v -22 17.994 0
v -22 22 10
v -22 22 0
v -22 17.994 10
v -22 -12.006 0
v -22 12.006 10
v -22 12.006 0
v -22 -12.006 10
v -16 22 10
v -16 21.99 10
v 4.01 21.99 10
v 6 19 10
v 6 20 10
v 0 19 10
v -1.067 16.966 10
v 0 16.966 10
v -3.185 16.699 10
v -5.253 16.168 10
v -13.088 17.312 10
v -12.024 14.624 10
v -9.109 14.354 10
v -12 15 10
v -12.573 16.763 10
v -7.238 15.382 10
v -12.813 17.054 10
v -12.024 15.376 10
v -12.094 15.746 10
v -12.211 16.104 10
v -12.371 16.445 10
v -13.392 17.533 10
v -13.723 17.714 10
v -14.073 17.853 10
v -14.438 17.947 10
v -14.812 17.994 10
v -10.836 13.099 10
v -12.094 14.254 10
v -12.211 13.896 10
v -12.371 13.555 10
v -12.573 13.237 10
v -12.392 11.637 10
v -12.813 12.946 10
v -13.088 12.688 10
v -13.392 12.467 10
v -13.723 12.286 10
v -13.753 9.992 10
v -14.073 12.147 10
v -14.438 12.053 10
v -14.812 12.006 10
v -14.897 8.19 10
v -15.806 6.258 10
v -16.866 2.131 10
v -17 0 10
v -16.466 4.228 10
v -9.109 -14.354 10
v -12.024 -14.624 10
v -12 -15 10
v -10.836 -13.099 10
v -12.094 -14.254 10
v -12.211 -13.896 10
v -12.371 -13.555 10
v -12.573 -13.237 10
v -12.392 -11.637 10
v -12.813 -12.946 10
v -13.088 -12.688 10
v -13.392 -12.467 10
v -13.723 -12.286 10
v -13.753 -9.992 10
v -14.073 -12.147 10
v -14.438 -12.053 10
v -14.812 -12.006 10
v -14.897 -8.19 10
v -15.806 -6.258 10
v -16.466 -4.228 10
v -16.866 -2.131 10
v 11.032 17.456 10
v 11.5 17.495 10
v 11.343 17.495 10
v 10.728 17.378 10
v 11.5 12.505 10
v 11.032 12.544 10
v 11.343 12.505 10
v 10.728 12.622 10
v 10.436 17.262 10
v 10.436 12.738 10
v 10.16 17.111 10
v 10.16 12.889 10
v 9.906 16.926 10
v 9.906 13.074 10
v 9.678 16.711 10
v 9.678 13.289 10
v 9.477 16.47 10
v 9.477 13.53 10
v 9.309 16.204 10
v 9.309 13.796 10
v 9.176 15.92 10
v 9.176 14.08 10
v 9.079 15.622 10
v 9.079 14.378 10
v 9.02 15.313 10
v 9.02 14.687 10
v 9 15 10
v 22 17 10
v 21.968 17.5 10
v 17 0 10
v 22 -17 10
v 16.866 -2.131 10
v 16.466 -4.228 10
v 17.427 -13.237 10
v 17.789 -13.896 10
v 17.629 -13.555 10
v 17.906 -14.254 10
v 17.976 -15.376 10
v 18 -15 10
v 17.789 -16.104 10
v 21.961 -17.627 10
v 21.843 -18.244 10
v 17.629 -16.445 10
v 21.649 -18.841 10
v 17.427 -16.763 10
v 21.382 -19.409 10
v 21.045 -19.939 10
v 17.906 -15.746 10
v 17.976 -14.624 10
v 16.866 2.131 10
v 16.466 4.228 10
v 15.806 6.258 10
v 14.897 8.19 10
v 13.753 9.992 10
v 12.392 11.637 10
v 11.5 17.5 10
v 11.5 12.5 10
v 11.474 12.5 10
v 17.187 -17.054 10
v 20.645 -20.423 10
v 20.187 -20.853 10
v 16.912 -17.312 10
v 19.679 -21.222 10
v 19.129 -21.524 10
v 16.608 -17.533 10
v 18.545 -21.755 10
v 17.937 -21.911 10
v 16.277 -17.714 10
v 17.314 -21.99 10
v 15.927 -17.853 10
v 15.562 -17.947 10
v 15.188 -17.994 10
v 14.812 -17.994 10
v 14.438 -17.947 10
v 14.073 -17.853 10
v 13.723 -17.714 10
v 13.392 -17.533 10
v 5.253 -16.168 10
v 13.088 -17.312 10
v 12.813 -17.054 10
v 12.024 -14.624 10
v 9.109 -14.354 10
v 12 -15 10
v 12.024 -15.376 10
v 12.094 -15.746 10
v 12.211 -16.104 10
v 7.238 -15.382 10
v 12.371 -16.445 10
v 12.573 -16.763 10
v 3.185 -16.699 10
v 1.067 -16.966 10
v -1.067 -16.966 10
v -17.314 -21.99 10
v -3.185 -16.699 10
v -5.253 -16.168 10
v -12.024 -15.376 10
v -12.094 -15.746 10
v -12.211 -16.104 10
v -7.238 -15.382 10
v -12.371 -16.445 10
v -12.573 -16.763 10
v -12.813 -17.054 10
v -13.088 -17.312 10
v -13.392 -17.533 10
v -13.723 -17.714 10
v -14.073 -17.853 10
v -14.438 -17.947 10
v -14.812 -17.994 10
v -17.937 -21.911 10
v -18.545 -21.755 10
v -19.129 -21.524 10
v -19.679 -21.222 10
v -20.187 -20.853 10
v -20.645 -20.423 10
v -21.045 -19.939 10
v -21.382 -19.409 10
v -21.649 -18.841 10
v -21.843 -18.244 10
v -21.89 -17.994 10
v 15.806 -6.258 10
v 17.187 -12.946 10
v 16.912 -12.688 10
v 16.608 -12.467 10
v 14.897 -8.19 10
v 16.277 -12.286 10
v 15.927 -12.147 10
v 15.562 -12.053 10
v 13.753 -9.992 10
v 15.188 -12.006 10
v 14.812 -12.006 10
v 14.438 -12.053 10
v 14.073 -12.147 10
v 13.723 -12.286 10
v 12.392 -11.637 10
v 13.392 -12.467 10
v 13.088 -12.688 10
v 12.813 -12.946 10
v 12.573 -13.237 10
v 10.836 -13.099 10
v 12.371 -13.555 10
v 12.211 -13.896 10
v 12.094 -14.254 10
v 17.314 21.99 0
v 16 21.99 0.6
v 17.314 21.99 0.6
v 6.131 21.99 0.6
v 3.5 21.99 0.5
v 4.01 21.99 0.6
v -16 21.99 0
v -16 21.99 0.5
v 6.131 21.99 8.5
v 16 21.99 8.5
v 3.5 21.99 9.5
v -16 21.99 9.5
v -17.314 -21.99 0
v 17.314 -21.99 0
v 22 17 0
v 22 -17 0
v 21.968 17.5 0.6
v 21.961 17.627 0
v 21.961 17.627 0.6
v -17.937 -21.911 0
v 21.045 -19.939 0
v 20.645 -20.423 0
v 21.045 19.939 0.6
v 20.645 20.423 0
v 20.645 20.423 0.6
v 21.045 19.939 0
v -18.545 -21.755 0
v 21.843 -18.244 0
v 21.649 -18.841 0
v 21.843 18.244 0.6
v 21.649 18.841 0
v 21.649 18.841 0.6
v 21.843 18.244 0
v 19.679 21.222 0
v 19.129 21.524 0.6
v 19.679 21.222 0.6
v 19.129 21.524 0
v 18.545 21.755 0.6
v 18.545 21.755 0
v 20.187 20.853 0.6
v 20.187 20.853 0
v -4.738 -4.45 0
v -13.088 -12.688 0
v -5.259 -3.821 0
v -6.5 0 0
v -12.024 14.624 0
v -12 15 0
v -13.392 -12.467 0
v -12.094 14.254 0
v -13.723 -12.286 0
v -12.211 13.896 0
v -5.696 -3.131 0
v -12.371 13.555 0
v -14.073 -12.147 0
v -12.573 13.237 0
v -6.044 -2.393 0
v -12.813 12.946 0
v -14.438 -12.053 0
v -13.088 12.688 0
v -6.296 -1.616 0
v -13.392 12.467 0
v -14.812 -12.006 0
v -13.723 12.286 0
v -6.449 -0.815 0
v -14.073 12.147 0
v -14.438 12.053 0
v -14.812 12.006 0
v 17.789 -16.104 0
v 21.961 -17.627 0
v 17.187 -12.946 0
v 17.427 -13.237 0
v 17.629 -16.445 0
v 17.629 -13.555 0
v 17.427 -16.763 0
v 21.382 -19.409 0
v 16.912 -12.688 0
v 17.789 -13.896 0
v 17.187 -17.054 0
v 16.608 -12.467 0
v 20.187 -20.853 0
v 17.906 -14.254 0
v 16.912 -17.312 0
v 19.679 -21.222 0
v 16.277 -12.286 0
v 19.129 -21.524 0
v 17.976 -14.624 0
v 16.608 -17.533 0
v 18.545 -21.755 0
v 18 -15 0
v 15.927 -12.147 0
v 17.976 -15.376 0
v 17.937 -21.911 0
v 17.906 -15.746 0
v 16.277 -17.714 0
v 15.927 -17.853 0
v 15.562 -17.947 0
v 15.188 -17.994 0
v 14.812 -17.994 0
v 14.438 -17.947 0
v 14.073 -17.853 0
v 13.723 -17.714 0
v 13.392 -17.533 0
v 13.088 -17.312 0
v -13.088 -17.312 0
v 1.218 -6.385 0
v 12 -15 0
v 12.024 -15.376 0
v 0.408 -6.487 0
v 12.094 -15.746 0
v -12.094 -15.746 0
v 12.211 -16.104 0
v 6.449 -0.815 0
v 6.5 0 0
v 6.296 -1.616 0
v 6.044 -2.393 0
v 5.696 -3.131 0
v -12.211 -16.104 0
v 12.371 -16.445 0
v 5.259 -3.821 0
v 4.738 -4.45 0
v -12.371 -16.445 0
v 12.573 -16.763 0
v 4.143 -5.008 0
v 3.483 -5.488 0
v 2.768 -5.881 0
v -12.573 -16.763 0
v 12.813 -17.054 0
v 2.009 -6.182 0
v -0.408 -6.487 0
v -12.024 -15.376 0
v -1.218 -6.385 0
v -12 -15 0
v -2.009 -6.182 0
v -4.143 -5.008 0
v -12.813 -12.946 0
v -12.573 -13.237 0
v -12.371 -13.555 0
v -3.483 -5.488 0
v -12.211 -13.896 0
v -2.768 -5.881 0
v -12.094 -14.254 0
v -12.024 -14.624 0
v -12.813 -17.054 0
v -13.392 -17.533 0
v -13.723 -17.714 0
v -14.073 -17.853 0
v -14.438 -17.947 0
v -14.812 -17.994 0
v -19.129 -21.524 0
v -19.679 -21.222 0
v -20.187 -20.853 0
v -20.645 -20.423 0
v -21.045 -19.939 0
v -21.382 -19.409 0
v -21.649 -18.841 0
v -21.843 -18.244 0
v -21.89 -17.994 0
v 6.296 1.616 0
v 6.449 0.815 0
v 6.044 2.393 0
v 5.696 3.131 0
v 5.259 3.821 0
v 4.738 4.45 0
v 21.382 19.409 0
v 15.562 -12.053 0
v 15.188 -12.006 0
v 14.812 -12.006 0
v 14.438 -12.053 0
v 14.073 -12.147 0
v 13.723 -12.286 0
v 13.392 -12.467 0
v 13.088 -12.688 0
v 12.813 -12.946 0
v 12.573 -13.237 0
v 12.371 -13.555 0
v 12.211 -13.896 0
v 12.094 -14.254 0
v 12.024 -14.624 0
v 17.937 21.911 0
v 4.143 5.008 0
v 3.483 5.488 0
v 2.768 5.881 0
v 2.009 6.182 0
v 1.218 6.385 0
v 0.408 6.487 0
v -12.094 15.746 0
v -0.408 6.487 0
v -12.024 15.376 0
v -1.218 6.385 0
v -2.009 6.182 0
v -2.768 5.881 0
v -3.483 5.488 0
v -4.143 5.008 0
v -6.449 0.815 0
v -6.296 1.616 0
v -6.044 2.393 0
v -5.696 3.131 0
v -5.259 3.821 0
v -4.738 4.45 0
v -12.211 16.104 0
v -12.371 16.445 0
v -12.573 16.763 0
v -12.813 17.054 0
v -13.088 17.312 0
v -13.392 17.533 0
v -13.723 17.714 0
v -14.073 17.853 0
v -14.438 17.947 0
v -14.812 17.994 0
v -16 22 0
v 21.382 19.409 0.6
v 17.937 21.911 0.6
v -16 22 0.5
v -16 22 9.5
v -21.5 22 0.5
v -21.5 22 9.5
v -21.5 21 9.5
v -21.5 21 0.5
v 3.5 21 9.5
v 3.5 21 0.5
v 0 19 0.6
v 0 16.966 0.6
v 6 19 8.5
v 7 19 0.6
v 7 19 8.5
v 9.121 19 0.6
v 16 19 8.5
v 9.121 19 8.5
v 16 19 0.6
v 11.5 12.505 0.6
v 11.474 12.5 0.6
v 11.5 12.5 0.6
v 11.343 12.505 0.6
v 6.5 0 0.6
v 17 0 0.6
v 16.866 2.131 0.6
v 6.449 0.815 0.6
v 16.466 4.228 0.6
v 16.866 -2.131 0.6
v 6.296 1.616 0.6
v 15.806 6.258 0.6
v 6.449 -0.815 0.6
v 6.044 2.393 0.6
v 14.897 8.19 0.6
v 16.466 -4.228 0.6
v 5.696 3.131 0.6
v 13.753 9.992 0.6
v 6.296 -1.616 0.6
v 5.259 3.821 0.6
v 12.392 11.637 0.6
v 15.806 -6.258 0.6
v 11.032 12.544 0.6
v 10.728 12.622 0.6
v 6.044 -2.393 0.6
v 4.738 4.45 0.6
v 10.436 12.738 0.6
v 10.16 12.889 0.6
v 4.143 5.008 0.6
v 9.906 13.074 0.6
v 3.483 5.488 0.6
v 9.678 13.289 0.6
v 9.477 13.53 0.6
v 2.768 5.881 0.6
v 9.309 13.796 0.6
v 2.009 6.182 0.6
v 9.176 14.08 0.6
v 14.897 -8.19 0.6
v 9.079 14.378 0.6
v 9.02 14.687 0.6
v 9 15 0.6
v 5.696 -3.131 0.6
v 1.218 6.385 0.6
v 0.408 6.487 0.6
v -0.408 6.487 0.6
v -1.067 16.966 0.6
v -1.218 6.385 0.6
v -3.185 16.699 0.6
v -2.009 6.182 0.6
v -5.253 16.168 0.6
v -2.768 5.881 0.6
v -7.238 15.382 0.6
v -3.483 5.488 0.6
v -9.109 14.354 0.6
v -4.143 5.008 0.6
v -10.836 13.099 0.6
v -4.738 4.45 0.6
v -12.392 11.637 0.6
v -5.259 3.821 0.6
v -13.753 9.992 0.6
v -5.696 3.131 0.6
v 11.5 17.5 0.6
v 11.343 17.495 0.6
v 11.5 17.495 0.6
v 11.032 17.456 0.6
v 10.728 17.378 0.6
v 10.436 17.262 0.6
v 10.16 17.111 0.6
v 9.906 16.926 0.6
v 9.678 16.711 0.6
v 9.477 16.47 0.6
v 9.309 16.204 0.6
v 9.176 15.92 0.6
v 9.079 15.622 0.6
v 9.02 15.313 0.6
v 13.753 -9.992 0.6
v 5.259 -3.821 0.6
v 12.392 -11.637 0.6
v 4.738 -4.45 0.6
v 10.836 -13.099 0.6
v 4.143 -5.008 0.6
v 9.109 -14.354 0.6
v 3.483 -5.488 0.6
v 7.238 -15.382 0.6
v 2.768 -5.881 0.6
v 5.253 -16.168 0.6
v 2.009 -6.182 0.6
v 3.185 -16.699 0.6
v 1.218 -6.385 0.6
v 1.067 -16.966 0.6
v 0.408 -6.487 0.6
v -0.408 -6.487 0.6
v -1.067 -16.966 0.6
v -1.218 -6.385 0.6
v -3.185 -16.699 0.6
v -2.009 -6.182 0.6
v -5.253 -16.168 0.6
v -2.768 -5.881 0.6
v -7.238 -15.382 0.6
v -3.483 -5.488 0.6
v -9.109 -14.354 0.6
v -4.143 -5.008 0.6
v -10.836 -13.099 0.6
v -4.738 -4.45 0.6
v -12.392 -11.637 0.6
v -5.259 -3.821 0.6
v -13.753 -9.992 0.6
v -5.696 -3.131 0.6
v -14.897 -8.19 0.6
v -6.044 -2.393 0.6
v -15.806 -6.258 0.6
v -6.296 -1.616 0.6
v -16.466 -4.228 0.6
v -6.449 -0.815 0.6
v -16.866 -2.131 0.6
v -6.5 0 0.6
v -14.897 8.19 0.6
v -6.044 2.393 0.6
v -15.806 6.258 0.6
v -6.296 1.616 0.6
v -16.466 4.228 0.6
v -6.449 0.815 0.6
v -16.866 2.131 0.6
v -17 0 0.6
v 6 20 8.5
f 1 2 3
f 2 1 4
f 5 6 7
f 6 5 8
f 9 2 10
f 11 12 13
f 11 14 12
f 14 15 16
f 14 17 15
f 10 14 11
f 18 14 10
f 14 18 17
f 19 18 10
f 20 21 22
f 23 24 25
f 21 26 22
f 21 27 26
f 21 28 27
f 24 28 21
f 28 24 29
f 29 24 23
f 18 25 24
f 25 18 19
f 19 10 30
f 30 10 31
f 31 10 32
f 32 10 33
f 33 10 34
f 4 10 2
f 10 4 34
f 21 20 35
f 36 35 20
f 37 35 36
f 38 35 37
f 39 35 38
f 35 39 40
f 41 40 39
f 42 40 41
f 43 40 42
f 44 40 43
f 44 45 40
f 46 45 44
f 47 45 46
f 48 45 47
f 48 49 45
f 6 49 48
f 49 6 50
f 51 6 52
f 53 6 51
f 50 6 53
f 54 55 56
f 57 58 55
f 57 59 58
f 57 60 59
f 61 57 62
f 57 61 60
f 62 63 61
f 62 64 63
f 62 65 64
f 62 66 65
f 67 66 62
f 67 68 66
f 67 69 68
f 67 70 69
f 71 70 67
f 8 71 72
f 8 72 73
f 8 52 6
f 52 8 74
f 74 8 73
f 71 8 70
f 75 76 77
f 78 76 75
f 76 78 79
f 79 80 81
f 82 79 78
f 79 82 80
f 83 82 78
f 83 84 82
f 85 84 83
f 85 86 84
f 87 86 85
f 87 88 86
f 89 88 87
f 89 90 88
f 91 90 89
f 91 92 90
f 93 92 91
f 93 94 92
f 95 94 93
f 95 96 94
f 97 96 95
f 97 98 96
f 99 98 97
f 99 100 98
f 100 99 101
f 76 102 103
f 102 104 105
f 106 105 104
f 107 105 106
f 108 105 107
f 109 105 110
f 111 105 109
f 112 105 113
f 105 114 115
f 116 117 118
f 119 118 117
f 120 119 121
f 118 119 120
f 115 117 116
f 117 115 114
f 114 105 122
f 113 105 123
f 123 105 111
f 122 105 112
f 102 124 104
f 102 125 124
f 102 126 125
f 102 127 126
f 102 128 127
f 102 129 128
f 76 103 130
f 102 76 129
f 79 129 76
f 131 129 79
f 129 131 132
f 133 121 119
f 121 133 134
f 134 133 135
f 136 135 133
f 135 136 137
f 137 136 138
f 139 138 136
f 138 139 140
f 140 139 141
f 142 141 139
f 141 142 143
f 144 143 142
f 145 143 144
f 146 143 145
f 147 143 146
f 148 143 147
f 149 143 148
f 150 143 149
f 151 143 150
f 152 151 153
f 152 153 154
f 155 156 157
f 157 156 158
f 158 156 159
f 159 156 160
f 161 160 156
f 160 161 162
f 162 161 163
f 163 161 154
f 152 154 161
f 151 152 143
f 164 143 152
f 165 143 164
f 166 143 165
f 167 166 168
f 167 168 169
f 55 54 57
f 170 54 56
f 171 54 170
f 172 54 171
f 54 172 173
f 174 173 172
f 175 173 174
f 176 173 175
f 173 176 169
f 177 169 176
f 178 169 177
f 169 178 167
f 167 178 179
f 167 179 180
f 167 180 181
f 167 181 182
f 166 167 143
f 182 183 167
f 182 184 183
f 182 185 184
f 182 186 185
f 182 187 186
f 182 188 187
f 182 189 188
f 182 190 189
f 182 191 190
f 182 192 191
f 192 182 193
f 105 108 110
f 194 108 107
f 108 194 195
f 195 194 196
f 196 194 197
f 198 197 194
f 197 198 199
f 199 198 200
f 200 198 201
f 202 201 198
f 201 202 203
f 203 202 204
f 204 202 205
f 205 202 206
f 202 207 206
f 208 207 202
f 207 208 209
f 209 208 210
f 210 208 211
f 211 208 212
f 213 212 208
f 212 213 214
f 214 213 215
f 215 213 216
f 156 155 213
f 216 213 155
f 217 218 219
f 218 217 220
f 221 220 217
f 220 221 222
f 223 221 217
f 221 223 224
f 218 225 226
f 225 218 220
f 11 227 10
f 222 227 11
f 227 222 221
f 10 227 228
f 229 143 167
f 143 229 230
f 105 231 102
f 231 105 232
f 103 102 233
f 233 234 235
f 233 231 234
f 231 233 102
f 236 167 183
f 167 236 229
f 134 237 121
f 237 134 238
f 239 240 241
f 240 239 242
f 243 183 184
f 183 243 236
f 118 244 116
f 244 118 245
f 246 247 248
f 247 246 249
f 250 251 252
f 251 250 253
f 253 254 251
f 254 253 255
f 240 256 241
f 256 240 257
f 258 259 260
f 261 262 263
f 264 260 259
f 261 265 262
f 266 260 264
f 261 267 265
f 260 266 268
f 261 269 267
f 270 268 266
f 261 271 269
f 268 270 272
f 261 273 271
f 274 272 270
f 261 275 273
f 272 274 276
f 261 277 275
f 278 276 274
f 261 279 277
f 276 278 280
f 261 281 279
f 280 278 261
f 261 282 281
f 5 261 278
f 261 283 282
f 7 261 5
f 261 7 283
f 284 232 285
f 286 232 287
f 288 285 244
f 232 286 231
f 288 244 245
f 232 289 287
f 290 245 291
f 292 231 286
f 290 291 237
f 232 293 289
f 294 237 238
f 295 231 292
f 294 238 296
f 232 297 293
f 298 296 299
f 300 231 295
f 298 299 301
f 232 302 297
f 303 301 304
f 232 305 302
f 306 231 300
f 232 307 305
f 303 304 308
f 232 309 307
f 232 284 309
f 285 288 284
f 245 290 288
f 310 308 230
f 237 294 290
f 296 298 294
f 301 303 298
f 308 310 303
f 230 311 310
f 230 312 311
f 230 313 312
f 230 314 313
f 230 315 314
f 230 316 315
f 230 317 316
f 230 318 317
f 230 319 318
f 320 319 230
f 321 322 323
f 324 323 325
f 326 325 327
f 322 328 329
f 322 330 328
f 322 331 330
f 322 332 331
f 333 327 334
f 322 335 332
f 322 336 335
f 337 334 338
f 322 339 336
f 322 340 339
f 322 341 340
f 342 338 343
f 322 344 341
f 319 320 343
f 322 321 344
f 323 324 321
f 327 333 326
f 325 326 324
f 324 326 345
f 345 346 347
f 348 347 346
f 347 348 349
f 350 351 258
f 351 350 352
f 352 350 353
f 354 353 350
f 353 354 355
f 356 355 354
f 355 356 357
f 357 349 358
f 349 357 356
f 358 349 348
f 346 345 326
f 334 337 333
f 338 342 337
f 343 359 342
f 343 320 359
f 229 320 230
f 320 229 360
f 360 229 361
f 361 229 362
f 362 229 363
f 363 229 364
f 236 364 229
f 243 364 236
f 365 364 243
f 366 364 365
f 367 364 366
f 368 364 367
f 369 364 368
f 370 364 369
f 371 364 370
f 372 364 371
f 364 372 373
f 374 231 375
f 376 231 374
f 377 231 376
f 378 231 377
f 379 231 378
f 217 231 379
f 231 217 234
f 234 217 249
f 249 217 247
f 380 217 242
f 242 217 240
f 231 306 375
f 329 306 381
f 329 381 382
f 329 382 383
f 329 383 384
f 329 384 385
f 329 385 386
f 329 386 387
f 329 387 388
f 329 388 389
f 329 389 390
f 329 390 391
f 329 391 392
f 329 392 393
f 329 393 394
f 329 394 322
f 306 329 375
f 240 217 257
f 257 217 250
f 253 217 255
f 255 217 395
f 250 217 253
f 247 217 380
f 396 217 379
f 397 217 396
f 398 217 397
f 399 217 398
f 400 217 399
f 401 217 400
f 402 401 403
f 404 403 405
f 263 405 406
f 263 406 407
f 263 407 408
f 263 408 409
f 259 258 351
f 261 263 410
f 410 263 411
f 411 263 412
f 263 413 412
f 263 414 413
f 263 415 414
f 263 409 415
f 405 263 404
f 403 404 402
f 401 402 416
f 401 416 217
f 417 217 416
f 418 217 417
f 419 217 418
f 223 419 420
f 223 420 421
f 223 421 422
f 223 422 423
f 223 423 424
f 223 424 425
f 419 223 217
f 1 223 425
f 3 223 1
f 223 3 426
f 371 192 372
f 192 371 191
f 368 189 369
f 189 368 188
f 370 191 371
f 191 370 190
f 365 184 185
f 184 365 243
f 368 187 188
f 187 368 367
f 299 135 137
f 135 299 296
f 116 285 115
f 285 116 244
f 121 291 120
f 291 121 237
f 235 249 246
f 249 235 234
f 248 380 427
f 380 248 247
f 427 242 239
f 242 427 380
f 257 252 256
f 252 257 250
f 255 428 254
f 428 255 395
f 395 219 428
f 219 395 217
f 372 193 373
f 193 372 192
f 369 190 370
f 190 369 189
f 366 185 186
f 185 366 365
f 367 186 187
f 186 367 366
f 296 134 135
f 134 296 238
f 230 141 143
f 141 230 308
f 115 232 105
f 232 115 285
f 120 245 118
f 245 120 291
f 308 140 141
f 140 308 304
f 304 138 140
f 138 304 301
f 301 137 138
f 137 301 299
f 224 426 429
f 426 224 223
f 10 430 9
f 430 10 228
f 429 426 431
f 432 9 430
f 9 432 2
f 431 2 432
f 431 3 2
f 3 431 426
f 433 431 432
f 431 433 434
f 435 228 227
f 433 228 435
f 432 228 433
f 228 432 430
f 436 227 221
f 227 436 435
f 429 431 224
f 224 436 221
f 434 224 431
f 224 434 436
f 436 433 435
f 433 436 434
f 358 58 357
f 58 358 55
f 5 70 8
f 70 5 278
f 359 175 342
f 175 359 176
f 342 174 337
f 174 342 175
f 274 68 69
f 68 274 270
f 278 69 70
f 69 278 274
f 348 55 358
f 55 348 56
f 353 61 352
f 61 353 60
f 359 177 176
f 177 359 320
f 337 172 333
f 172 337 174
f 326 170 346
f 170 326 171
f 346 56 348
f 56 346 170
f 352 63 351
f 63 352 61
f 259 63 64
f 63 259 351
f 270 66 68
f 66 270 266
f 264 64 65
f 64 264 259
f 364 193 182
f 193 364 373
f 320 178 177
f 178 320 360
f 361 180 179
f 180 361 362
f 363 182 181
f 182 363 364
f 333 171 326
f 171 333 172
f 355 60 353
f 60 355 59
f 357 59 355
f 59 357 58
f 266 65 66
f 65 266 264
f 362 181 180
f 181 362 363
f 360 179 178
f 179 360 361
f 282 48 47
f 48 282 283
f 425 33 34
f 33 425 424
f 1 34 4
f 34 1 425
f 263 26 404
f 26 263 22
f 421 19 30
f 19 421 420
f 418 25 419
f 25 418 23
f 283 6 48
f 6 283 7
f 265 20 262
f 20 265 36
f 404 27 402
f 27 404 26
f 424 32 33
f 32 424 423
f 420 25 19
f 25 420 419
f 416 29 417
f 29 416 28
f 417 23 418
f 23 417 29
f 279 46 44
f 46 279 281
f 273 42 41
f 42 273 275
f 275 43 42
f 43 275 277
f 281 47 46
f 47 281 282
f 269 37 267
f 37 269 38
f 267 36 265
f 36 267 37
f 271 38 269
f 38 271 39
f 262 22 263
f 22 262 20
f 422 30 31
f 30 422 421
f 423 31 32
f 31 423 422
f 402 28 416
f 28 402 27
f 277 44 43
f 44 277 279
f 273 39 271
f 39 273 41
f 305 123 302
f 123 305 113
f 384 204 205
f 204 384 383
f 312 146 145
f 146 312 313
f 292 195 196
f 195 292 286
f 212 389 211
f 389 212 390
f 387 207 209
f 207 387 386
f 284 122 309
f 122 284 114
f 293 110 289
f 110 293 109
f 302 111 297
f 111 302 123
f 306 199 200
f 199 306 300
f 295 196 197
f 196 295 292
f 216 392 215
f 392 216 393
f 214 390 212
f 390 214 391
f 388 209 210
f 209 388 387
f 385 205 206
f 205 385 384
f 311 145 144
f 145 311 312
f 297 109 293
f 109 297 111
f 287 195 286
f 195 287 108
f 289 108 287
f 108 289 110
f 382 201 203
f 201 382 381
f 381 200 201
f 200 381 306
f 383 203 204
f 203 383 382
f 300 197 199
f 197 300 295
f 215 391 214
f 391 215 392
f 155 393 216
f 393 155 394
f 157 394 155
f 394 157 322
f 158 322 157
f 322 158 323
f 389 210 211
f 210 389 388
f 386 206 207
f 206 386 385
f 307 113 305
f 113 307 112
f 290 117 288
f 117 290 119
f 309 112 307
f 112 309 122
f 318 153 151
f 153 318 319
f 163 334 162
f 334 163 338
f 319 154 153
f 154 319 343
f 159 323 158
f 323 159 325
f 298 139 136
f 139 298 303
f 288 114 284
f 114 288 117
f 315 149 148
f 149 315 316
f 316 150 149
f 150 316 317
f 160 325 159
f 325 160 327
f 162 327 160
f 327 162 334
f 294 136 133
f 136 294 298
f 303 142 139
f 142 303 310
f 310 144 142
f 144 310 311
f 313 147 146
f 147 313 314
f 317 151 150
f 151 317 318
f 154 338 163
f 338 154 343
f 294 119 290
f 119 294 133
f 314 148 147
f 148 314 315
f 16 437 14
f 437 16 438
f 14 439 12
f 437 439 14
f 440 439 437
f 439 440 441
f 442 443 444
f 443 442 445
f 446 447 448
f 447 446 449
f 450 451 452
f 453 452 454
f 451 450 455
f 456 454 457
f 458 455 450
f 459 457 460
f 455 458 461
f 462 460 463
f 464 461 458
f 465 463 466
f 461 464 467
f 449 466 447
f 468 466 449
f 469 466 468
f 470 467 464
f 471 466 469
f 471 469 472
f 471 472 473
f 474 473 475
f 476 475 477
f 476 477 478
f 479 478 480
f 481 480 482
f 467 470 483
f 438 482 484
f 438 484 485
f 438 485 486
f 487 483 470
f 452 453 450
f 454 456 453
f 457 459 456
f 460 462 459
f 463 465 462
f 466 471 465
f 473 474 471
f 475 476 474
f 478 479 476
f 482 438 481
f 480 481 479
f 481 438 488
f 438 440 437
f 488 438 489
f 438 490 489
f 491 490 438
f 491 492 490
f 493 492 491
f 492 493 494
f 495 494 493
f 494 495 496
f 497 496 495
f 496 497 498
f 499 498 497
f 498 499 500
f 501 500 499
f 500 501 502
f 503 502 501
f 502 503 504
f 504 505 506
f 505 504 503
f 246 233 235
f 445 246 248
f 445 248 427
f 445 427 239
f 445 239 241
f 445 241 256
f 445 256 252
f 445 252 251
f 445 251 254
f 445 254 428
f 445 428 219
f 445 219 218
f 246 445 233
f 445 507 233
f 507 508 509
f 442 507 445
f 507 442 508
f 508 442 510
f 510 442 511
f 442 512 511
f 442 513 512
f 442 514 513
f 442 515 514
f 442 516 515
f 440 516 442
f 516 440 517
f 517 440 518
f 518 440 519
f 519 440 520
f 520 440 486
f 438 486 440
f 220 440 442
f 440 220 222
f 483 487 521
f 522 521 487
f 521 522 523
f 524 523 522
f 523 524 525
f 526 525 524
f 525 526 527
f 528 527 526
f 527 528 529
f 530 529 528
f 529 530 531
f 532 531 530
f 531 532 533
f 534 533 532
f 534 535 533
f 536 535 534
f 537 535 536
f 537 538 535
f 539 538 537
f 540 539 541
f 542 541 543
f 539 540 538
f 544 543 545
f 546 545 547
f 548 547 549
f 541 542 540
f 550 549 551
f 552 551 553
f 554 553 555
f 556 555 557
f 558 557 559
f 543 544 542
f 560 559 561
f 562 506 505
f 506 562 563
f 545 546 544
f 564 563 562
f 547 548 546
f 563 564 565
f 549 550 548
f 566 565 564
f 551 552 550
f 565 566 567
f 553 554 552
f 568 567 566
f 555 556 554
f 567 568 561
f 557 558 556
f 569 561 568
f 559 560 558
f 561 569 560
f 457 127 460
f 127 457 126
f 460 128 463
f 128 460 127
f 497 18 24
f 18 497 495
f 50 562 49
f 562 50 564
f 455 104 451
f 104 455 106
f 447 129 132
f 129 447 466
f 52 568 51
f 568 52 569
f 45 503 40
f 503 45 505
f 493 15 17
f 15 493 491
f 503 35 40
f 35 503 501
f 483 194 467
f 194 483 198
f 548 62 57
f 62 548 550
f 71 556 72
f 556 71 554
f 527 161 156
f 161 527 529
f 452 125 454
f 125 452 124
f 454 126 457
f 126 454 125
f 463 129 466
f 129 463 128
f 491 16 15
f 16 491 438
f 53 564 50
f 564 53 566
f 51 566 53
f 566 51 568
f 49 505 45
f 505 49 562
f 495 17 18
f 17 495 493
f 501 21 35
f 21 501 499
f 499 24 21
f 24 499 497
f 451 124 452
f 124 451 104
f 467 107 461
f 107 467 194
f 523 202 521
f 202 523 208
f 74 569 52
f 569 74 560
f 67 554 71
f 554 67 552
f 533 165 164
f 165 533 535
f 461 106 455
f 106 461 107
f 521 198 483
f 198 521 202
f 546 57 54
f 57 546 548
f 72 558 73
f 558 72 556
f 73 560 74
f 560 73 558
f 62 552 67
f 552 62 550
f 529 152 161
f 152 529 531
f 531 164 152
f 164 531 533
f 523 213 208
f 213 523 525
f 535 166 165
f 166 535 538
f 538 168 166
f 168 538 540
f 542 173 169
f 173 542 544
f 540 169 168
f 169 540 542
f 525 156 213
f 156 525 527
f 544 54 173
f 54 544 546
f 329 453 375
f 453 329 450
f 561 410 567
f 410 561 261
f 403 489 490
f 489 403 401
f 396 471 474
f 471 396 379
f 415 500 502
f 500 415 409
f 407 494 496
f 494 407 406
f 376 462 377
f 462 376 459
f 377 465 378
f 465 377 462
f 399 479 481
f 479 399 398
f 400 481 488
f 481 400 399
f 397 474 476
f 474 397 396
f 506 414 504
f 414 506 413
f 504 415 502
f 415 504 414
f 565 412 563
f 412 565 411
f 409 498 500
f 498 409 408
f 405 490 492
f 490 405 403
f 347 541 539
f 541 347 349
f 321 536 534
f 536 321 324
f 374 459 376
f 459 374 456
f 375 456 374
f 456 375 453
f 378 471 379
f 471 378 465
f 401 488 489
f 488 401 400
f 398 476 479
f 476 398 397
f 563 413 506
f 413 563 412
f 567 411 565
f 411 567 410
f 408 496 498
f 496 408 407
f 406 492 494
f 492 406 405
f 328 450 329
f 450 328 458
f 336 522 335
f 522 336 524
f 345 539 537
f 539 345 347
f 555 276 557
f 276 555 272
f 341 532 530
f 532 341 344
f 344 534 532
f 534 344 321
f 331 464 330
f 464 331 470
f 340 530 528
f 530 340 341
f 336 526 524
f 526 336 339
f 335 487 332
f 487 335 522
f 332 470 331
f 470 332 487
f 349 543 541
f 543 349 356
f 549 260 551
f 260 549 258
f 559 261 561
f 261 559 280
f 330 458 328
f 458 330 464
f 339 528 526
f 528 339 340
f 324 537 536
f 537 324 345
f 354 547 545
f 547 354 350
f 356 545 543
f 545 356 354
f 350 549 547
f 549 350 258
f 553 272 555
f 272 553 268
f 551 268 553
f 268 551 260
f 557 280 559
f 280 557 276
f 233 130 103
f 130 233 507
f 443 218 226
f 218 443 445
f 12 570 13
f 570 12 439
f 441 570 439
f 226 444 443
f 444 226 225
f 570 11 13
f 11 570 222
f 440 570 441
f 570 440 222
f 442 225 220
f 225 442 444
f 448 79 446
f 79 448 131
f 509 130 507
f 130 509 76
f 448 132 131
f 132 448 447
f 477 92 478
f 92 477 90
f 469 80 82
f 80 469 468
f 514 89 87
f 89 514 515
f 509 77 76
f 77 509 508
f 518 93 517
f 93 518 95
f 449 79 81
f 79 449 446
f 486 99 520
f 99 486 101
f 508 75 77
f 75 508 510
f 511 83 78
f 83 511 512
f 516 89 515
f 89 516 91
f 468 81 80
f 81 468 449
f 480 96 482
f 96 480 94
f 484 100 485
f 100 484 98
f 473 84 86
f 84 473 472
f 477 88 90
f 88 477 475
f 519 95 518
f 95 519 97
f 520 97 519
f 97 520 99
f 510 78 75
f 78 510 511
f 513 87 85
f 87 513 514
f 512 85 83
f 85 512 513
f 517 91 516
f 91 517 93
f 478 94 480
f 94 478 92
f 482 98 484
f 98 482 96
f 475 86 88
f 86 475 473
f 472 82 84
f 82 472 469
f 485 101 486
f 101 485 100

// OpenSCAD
$fn = 50;


union() {
	difference() {
		union() {
			translate(v = [0, 0, 0]) {
				rotate(a = [0, 0, 0]) {
					hull() {
						translate(v = [-17.0000000000, 17.0000000000, 0]) {
							rotate(a = [0, 0, 0]) {
								translate(v = [0, 0, 0]) {
									rotate(a = [0, 0, 0]) {
										cylinder(h = 10, r = 5);
									}
								}
							}
						}
						translate(v = [17.0000000000, 17.0000000000, 0]) {
							rotate(a = [0, 0, 0]) {
								translate(v = [0, 0, 0]) {
									rotate(a = [0, 0, 0]) {
										cylinder(h = 10, r = 5);
									}
								}
							}
						}
						translate(v = [-17.0000000000, -17.0000000000, 0]) {
							rotate(a = [0, 0, 0]) {
								translate(v = [0, 0, 0]) {
									rotate(a = [0, 0, 0]) {
										cylinder(h = 10, r = 5);
									}
								}
							}
						}
						translate(v = [17.0000000000, -17.0000000000, 0]) {
							rotate(a = [0, 0, 0]) {
								translate(v = [0, 0, 0]) {
									rotate(a = [0, 0, 0]) {
										cylinder(h = 10, r = 5);
									}
								}
							}
						}
					}
				}
			}
			translate(v = [-22.0000000000, 16.0000000000, 0]) {
				rotate(a = [0, 0, 0]) {
					cube(size = [6, 6, 10]);
				}
			}
		}
		union() {
			#translate(v = [-21.5000000000, 21.0000000000, 0.5000000000]) {
				rotate(a = [0, 0, 0]) {
					cube(size = [25, 1, 9.0000000000]);
				}
			}
			translate(v = [-22.5000000000, -15.0000000000, -125]) {
				rotate(a = [0, 0, 0]) {
					hull() {
						translate(v = [7.5000000000, 0, 0]) {
							rotate(a = [0, 0, 0]) {
								translate(v = [0, 0, 0]) {
									rotate(a = [0, 0, 0]) {
										cylinder(h = 250, r = 3.0000000000);
									}
								}
							}
						}
						translate(v = [-7.5000000000, 0, 0]) {
							rotate(a = [0, 0, 0]) {
								translate(v = [0, 0, 0]) {
									rotate(a = [0, 0, 0]) {
										cylinder(h = 250, r = 3.0000000000);
									}
								}
							}
						}
					}
				}
			}
			translate(v = [-22.5000000000, 15.0000000000, -125]) {
				rotate(a = [0, 0, 0]) {
					hull() {
						translate(v = [7.5000000000, 0, 0]) {
							rotate(a = [0, 0, 0]) {
								translate(v = [0, 0, 0]) {
									rotate(a = [0, 0, 0]) {
										cylinder(h = 250, r = 3.0000000000);
									}
								}
							}
						}
						translate(v = [-7.5000000000, 0, 0]) {
							rotate(a = [0, 0, 0]) {
								translate(v = [0, 0, 0]) {
									rotate(a = [0, 0, 0]) {
										cylinder(h = 250, r = 3.0000000000);
									}
								}
							}
						}
					}
				}
			}
			translate(v = [15.0000000000, -15.0000000000, -125.0000000000]) {
				rotate(a = [0, 0, 0]) {
					cylinder(h = 250, r = 3.0000000000);
				}
			}
			translate(v = [0.0000000000, 11.0000000000, 0.6000000000]) {
				rotate(a = [0, 0, 0]) {
					cube(size = [11, 8, 12.4000000000]);
				}
			}
			translate(v = [0, 0, 0.6000000000]) {
				rotate(a = [0, 0, 0]) {
					cylinder(h = 12.4000000000, r = 17.0000000000);
				}
			}
			translate(v = [0, 0, -5.0000000000]) {
				rotate(a = [0, 0, 0]) {
					cylinder(h = 10, r = 6.5000000000);
				}
			}
			translate(v = [0.0000000000, 17.5000000000, 0.6000000000]) {
				rotate(a = [0, 0, 0]) {
					cube(size = [22.0000000000, 1.5000000000, 12.4000000000]);
				}
			}
			translate(v = [16.0000000000, 17.5000000000, 0.6000000000]) {
				rotate(a = [0, 0, 0]) {
					cube(size = [6, 4.5000000000, 12.4000000000]);
				}
			}
			translate(v = [6.0000000000, 17.5000000000, 8.5000000000]) {
				rotate(a = [0, 0, 0]) {
					cube(size = [16, 4.5000000000, 1.5000000000]);
				}
			}
			translate(v = [3.2500000000, 22.7500000000, 0.6000000000]) {
				rotate(a = [0, 0, -45]) {
					cube(size = [7.5000000000, 1.5000000000, 12.4000000000]);
				}
			}
			translate(v = [2.5000000000, 12.5000000000, 0.6000000000]) {
				rotate(a = [0, 0, 0]) {
					cube(size = [9.0000000000, 5, 9.4000000000]);
				}
			}
		}
	}
	union() {
		translate(v = [14, 15.0000000000, 0]) {
			rotate(a = [0, 0, 0]) {
				hull() {
					translate(v = [2.5000000000, 0, 0]) {
						rotate(a = [0, 0, 0]) {
							#translate(v = [0, 0, 0]) {
								rotate(a = [0, 0, 0]) {
									cylinder(h = 10, r = 2.5000000000);
								}
							}
						}
					}
					translate(v = [-2.5000000000, 0, 0]) {
						rotate(a = [0, 0, 0]) {
							#translate(v = [0, 0, 0]) {
								rotate(a = [0, 0, 0]) {
									cylinder(h = 10, r = 2.5000000000);
								}
							}
						}
					}
				}
			}
		}
	}
}
